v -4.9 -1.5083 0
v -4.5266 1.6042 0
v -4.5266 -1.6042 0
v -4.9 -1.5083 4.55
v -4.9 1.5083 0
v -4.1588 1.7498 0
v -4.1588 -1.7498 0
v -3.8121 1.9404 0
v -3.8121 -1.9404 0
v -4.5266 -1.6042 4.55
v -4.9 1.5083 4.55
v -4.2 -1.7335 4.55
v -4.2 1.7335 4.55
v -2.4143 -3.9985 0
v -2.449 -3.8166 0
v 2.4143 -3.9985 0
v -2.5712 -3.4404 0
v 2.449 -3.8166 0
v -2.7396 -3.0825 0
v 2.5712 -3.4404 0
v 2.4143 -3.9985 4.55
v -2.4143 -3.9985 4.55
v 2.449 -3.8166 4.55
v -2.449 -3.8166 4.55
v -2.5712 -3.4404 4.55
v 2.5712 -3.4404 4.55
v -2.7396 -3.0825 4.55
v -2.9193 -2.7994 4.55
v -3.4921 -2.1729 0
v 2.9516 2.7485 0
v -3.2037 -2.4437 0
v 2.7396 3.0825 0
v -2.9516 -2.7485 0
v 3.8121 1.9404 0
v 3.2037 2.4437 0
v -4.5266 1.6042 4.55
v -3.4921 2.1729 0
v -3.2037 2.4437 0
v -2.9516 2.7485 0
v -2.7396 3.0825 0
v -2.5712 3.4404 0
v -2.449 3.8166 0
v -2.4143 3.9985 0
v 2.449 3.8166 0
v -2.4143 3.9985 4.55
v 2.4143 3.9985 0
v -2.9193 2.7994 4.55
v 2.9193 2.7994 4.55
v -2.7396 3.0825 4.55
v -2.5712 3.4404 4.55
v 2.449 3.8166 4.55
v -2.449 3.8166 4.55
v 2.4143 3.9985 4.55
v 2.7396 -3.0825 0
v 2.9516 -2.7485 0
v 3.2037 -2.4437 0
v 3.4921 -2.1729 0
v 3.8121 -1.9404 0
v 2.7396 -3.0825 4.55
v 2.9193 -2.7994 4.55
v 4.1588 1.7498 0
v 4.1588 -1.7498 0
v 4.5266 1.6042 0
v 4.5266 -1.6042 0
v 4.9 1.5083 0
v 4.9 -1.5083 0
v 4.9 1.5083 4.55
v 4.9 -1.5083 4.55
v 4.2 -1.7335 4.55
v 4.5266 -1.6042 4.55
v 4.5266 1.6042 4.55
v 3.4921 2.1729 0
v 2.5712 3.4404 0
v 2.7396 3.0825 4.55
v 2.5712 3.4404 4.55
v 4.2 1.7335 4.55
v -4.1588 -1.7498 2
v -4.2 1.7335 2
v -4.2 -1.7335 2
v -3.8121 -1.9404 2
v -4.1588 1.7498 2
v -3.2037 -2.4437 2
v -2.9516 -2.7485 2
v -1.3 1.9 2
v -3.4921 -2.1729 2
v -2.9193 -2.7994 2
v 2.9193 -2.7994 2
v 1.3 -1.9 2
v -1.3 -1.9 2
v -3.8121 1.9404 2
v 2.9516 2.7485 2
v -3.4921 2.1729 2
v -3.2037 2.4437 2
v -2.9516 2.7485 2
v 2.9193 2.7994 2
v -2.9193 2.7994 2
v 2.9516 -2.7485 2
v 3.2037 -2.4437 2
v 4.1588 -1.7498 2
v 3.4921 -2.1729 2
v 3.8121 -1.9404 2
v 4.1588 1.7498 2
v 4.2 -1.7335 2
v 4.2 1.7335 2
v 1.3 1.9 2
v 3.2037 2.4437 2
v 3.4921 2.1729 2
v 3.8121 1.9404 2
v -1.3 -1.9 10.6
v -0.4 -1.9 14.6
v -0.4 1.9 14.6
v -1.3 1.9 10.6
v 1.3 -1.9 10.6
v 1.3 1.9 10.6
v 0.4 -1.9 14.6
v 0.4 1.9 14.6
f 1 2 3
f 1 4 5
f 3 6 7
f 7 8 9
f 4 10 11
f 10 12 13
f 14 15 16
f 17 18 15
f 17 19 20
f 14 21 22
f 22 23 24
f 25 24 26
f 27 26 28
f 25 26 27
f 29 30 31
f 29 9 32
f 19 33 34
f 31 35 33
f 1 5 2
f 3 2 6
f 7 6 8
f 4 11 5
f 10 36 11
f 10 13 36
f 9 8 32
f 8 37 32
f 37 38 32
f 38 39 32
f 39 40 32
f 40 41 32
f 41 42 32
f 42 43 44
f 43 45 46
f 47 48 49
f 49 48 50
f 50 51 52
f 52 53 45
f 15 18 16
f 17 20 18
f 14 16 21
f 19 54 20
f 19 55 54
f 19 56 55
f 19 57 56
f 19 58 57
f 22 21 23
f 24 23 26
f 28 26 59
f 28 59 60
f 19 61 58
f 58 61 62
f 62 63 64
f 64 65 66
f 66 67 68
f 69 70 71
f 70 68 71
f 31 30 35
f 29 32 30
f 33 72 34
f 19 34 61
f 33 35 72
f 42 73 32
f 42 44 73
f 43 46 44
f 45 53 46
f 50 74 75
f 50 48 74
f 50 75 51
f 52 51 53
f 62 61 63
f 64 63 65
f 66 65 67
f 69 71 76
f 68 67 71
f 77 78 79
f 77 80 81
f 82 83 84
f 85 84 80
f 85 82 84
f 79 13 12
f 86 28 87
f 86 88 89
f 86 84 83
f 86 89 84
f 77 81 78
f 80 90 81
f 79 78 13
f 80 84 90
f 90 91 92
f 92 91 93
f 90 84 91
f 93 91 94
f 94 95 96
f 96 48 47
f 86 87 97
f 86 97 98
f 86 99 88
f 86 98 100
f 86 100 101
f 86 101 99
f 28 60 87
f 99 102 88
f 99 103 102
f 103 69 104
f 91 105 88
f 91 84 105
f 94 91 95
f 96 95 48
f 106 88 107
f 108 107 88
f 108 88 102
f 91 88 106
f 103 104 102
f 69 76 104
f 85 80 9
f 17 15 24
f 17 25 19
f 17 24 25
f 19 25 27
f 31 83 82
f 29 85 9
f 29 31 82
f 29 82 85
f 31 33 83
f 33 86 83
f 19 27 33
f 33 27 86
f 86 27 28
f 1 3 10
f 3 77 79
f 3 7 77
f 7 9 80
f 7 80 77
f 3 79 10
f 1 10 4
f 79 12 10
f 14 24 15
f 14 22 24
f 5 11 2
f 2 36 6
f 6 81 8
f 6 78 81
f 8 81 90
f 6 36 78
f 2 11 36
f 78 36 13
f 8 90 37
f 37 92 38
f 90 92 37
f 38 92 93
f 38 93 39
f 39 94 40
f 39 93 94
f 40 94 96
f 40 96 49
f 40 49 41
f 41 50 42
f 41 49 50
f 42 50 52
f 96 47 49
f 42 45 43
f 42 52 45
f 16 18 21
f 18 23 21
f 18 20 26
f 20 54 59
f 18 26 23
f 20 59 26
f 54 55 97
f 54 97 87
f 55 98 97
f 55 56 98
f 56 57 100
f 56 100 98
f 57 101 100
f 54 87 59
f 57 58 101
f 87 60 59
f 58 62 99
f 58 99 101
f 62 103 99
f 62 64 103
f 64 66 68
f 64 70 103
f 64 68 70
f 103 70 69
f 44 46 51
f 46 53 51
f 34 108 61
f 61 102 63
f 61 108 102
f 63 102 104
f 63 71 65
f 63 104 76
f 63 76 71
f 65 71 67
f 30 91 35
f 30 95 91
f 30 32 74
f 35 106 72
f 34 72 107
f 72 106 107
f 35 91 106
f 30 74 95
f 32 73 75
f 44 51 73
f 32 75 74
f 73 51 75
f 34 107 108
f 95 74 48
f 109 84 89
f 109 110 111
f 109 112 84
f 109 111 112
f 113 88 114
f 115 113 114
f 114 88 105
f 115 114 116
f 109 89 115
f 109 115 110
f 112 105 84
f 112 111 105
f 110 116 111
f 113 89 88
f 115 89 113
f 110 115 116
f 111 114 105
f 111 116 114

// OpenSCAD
$fn = 50;

difference() {
	union() {
		translate(v = [0, 0, 0]) {
			rotate(a = [0, 0, 0]) {
				difference() {
					union() {
						translate(v = [0, 0, 0]) {
							rotate(a = [0, 0, 0]) {
								difference() {
									union() {
										translate(v = [0, 0, 0]) {
											rotate(a = [0, 0, 0]) {
												difference() {
													union() {
														hull() {
															translate(v = [-4.15, 3.25, 0]) {
																cylinder(h = 4.55, r = 0.75);
															}
															translate(v = [4.15, 3.25, 0]) {
																cylinder(h = 4.55, r = 0.75);
															}
															translate(v = [-4.15, -3.25, 0]) {
																cylinder(h = 4.55, r = 0.75);
															}
															translate(v = [4.15, -3.25, 0]) {
																cylinder(h = 4.55, r = 0.75);
															}
														}
													}
													union() {
														translate(v = [0, 0, 2.0]) {
															hull() {
																translate(v = [-3.9000000000000004, 2.5, 0]) {
																	cylinder(h = 2.65, r = 0.3);
																}
																translate(v = [3.9000000000000004, 2.5, 0]) {
																	cylinder(h = 2.65, r = 0.3);
																}
																translate(v = [-3.9000000000000004, -2.5, 0]) {
																	cylinder(h = 2.65, r = 0.3);
																}
																translate(v = [3.9000000000000004, -2.5, 0]) {
																	cylinder(h = 2.65, r = 0.3);
																}
															}
														}
														translate(v = [-5.5, -4.6, -0.1]) {
															cylinder(h = 4.75, r = 3.15);
														}
														translate(v = [-5.5, 4.6, -0.1]) {
															cylinder(h = 4.75, r = 3.15);
														}
														translate(v = [5.5, -4.6, -0.1]) {
															cylinder(h = 4.75, r = 3.15);
														}
														translate(v = [5.5, 4.6, -0.1]) {
															cylinder(h = 4.75, r = 3.15);
														}
													}
												}
											}
										}
										translate(v = [0, 0, 0]) {
											rotate(a = [0, 0, 0]) {
												difference() {
													union() {
														translate(v = [-1.4000000000000001, -1.9, 1.95]) {
															cube(size = [2.8000000000000003, 3.8, 12.65]);
														}
													}
													union() {
														translate(v = [0, 2.0, 0]) {
															rotate(a = [90, 0, 0]) {
																linear_extrude(height = 4.0) {
																	polygon(points = [[-1.3, 1.85], [-1.3, 10.6], [-0.4, 14.6], [-0.4, 14.799999999999999], [-1.6, 14.799999999999999], [-1.6, 1.85]]);
																}
															}
														}
														translate(v = [0, 2.0, 0]) {
															rotate(a = [90, 0, 0]) {
																linear_extrude(height = 4.0) {
																	polygon(points = [[1.3, 1.85], [1.3, 10.6], [0.4, 14.6], [0.4, 14.799999999999999], [1.6, 14.799999999999999], [1.6, 1.85]]);
																}
															}
														}
													}
												}
											}
										}
									}
									union();
								}
							}
						}
					}
					union();
				}
			}
		}
	}
	union();
}
